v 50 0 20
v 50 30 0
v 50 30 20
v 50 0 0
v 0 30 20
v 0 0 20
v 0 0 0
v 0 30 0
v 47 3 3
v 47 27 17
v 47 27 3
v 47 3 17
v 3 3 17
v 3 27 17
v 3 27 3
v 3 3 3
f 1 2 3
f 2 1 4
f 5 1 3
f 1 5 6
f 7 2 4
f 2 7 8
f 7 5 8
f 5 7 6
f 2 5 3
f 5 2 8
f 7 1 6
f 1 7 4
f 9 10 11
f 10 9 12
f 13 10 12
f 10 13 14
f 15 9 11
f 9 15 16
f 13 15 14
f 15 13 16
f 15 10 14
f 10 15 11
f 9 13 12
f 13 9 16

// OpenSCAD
module piece(width, height, depth, fillet_radius) {
  difference() {
    cube([width, height, depth]);
    translate([fillet_radius, fillet_radius, fillet_radius])
    cube([width - 2 * fillet_radius, height - 2 * fillet_radius, depth - 2 * fillet_radius]);
  }
}

piece(width = 50, height = 30, depth = 20, fillet_radius = 3);
